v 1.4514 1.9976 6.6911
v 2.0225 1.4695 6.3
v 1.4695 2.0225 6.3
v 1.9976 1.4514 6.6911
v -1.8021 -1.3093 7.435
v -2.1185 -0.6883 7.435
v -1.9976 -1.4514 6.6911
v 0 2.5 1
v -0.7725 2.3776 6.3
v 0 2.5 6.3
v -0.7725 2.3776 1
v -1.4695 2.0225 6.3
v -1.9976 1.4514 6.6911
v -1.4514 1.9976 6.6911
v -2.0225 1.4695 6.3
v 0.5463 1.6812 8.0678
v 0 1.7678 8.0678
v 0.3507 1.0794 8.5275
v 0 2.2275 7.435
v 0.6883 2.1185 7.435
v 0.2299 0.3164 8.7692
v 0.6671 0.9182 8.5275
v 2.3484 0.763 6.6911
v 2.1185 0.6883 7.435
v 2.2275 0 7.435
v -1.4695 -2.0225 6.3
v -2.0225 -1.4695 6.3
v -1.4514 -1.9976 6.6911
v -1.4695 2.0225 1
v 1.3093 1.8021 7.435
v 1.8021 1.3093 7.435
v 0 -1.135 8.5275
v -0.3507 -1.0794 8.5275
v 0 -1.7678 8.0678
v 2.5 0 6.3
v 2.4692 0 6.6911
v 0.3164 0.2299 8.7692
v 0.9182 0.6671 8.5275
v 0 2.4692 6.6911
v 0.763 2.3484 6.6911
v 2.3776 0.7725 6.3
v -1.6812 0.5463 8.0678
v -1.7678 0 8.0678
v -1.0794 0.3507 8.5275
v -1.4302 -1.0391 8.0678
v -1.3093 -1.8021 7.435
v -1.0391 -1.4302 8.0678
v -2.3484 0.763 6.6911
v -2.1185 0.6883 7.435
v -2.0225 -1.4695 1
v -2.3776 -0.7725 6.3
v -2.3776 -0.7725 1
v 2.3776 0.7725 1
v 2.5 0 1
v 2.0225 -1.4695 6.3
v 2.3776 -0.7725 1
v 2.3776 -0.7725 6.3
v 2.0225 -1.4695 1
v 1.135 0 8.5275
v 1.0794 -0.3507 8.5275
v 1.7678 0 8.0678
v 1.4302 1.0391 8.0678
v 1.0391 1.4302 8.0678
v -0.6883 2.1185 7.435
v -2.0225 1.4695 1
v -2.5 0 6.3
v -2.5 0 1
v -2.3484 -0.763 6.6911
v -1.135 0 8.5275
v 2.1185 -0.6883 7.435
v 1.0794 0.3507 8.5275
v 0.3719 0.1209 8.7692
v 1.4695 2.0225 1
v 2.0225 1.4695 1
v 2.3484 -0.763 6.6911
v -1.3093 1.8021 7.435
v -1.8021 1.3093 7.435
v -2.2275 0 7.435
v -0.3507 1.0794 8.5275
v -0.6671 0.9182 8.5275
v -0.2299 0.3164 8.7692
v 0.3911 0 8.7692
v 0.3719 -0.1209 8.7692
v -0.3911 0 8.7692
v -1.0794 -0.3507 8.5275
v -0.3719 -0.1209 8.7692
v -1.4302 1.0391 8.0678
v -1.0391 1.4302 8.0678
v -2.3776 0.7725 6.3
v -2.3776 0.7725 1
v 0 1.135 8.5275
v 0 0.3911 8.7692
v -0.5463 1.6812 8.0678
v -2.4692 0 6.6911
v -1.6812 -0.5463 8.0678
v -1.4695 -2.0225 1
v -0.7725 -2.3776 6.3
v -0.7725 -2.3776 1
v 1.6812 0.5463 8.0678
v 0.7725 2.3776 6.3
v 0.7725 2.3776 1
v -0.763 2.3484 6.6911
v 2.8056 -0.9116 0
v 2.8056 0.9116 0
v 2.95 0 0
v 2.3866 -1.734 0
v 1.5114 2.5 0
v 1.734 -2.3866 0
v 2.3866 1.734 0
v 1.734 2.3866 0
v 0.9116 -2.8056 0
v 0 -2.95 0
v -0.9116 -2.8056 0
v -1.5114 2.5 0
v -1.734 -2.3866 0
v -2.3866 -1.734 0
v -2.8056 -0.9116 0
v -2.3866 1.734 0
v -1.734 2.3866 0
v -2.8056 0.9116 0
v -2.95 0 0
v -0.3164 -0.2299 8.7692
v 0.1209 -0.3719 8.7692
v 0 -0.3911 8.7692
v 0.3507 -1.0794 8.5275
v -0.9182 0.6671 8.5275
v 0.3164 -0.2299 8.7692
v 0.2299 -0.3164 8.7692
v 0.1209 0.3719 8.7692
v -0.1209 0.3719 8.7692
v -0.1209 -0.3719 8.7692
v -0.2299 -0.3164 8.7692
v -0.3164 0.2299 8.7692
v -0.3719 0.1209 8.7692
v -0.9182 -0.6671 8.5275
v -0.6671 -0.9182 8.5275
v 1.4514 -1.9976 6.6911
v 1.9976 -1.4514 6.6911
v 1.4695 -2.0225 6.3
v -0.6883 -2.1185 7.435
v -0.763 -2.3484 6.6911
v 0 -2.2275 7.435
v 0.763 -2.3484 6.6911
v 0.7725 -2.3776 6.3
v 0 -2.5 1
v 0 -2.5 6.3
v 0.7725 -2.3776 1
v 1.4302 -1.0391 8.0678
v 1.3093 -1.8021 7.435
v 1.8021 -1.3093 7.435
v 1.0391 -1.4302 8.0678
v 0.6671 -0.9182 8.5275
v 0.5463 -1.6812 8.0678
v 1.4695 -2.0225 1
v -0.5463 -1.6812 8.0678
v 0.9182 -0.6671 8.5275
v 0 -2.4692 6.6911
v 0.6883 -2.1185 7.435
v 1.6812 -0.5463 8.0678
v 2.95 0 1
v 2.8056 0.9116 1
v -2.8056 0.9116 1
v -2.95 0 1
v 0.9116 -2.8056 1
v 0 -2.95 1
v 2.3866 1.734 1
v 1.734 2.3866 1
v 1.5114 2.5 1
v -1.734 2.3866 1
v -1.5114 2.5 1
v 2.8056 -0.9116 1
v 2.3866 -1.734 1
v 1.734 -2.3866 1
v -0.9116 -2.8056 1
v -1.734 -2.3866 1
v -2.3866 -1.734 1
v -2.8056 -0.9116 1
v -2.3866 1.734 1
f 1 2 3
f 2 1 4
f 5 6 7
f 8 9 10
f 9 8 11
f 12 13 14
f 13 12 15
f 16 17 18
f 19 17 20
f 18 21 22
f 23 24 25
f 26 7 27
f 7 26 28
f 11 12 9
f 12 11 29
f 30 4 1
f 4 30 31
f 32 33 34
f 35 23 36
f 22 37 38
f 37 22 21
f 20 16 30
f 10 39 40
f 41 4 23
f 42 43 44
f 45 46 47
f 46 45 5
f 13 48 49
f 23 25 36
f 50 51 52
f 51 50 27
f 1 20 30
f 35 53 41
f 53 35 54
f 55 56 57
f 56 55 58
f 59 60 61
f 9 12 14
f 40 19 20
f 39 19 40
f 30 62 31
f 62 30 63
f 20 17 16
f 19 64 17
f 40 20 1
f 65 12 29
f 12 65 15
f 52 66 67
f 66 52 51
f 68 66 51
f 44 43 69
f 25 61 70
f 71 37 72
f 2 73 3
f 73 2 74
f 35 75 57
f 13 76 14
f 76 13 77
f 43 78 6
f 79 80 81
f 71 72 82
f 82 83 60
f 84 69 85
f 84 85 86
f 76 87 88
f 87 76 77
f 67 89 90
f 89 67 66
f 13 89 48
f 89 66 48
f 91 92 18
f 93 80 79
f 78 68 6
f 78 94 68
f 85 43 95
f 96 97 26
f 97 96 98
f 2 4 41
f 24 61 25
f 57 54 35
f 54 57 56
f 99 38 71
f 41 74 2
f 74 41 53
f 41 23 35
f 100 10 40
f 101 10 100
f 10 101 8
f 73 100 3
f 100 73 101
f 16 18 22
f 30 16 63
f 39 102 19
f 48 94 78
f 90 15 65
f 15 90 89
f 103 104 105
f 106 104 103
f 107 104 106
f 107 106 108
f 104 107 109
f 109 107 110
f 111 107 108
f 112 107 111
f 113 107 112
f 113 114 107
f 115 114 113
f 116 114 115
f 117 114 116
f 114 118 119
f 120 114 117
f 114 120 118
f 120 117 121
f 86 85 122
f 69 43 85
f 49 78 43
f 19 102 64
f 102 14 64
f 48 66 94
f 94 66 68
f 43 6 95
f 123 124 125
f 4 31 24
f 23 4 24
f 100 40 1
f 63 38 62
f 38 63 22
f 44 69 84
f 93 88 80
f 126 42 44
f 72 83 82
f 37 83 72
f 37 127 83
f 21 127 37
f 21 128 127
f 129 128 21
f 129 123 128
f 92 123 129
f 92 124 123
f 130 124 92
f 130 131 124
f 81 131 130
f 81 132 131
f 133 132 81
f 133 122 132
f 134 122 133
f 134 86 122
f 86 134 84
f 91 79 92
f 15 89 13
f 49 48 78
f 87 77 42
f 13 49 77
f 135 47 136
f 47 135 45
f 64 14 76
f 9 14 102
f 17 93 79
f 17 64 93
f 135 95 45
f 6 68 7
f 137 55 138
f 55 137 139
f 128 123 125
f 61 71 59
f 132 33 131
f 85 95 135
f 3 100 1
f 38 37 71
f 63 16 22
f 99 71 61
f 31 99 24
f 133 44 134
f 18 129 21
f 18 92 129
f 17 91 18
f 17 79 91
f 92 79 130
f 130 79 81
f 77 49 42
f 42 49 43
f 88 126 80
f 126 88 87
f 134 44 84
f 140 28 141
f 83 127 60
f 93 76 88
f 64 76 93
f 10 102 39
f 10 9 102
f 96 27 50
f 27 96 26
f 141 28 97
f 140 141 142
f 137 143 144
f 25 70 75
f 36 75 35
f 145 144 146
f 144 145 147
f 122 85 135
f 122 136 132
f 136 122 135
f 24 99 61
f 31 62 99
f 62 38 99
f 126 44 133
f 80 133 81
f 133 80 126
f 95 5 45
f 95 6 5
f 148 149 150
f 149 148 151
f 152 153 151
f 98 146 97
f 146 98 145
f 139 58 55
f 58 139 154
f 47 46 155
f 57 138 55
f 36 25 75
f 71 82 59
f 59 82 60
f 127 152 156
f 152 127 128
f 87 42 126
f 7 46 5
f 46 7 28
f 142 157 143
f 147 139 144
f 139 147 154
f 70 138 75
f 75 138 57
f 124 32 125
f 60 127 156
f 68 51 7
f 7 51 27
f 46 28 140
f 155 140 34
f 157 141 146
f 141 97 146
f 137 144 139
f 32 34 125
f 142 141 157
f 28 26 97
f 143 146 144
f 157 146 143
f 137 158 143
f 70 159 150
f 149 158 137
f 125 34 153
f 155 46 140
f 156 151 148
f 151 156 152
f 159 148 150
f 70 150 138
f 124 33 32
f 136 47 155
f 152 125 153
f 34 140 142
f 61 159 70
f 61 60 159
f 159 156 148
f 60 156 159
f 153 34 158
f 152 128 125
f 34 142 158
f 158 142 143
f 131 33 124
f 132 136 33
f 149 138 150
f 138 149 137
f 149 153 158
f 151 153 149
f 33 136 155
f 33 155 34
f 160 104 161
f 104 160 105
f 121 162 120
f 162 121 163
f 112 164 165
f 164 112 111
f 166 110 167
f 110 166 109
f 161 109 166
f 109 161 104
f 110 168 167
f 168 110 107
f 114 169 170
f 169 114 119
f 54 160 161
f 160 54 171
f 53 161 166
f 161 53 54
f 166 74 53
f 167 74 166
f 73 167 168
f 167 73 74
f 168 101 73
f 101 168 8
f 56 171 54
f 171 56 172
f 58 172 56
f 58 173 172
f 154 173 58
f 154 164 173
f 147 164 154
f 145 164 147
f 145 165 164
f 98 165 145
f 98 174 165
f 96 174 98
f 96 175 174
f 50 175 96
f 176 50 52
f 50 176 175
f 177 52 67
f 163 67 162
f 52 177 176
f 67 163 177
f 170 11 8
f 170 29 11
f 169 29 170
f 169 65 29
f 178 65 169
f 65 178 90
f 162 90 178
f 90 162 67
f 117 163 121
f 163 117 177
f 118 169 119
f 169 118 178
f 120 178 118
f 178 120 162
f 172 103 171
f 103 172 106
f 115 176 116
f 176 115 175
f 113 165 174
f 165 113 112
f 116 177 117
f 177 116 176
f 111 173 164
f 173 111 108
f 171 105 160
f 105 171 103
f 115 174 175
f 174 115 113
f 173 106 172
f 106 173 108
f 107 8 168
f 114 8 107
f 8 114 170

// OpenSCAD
module led(diameter, height, lip, adjust) {
  difference() {
    union() {
      hull() {
        translate([0, 0, height-diameter/2]) {
            sphere(d=diameter, $fn=20);
        }
        cylinder(d=diameter, h=height-(diameter/2), $fn=20);
      }
      cylinder(d=diameter+adjust, h=lip, $fn=20);
    }
    translate([-diameter, diameter/2 , -1]) {
       cube(size=[diameter*2, 5, height+1]);
    }
  }
}

led(5.0, 8.8, 1.0, 0.9);
